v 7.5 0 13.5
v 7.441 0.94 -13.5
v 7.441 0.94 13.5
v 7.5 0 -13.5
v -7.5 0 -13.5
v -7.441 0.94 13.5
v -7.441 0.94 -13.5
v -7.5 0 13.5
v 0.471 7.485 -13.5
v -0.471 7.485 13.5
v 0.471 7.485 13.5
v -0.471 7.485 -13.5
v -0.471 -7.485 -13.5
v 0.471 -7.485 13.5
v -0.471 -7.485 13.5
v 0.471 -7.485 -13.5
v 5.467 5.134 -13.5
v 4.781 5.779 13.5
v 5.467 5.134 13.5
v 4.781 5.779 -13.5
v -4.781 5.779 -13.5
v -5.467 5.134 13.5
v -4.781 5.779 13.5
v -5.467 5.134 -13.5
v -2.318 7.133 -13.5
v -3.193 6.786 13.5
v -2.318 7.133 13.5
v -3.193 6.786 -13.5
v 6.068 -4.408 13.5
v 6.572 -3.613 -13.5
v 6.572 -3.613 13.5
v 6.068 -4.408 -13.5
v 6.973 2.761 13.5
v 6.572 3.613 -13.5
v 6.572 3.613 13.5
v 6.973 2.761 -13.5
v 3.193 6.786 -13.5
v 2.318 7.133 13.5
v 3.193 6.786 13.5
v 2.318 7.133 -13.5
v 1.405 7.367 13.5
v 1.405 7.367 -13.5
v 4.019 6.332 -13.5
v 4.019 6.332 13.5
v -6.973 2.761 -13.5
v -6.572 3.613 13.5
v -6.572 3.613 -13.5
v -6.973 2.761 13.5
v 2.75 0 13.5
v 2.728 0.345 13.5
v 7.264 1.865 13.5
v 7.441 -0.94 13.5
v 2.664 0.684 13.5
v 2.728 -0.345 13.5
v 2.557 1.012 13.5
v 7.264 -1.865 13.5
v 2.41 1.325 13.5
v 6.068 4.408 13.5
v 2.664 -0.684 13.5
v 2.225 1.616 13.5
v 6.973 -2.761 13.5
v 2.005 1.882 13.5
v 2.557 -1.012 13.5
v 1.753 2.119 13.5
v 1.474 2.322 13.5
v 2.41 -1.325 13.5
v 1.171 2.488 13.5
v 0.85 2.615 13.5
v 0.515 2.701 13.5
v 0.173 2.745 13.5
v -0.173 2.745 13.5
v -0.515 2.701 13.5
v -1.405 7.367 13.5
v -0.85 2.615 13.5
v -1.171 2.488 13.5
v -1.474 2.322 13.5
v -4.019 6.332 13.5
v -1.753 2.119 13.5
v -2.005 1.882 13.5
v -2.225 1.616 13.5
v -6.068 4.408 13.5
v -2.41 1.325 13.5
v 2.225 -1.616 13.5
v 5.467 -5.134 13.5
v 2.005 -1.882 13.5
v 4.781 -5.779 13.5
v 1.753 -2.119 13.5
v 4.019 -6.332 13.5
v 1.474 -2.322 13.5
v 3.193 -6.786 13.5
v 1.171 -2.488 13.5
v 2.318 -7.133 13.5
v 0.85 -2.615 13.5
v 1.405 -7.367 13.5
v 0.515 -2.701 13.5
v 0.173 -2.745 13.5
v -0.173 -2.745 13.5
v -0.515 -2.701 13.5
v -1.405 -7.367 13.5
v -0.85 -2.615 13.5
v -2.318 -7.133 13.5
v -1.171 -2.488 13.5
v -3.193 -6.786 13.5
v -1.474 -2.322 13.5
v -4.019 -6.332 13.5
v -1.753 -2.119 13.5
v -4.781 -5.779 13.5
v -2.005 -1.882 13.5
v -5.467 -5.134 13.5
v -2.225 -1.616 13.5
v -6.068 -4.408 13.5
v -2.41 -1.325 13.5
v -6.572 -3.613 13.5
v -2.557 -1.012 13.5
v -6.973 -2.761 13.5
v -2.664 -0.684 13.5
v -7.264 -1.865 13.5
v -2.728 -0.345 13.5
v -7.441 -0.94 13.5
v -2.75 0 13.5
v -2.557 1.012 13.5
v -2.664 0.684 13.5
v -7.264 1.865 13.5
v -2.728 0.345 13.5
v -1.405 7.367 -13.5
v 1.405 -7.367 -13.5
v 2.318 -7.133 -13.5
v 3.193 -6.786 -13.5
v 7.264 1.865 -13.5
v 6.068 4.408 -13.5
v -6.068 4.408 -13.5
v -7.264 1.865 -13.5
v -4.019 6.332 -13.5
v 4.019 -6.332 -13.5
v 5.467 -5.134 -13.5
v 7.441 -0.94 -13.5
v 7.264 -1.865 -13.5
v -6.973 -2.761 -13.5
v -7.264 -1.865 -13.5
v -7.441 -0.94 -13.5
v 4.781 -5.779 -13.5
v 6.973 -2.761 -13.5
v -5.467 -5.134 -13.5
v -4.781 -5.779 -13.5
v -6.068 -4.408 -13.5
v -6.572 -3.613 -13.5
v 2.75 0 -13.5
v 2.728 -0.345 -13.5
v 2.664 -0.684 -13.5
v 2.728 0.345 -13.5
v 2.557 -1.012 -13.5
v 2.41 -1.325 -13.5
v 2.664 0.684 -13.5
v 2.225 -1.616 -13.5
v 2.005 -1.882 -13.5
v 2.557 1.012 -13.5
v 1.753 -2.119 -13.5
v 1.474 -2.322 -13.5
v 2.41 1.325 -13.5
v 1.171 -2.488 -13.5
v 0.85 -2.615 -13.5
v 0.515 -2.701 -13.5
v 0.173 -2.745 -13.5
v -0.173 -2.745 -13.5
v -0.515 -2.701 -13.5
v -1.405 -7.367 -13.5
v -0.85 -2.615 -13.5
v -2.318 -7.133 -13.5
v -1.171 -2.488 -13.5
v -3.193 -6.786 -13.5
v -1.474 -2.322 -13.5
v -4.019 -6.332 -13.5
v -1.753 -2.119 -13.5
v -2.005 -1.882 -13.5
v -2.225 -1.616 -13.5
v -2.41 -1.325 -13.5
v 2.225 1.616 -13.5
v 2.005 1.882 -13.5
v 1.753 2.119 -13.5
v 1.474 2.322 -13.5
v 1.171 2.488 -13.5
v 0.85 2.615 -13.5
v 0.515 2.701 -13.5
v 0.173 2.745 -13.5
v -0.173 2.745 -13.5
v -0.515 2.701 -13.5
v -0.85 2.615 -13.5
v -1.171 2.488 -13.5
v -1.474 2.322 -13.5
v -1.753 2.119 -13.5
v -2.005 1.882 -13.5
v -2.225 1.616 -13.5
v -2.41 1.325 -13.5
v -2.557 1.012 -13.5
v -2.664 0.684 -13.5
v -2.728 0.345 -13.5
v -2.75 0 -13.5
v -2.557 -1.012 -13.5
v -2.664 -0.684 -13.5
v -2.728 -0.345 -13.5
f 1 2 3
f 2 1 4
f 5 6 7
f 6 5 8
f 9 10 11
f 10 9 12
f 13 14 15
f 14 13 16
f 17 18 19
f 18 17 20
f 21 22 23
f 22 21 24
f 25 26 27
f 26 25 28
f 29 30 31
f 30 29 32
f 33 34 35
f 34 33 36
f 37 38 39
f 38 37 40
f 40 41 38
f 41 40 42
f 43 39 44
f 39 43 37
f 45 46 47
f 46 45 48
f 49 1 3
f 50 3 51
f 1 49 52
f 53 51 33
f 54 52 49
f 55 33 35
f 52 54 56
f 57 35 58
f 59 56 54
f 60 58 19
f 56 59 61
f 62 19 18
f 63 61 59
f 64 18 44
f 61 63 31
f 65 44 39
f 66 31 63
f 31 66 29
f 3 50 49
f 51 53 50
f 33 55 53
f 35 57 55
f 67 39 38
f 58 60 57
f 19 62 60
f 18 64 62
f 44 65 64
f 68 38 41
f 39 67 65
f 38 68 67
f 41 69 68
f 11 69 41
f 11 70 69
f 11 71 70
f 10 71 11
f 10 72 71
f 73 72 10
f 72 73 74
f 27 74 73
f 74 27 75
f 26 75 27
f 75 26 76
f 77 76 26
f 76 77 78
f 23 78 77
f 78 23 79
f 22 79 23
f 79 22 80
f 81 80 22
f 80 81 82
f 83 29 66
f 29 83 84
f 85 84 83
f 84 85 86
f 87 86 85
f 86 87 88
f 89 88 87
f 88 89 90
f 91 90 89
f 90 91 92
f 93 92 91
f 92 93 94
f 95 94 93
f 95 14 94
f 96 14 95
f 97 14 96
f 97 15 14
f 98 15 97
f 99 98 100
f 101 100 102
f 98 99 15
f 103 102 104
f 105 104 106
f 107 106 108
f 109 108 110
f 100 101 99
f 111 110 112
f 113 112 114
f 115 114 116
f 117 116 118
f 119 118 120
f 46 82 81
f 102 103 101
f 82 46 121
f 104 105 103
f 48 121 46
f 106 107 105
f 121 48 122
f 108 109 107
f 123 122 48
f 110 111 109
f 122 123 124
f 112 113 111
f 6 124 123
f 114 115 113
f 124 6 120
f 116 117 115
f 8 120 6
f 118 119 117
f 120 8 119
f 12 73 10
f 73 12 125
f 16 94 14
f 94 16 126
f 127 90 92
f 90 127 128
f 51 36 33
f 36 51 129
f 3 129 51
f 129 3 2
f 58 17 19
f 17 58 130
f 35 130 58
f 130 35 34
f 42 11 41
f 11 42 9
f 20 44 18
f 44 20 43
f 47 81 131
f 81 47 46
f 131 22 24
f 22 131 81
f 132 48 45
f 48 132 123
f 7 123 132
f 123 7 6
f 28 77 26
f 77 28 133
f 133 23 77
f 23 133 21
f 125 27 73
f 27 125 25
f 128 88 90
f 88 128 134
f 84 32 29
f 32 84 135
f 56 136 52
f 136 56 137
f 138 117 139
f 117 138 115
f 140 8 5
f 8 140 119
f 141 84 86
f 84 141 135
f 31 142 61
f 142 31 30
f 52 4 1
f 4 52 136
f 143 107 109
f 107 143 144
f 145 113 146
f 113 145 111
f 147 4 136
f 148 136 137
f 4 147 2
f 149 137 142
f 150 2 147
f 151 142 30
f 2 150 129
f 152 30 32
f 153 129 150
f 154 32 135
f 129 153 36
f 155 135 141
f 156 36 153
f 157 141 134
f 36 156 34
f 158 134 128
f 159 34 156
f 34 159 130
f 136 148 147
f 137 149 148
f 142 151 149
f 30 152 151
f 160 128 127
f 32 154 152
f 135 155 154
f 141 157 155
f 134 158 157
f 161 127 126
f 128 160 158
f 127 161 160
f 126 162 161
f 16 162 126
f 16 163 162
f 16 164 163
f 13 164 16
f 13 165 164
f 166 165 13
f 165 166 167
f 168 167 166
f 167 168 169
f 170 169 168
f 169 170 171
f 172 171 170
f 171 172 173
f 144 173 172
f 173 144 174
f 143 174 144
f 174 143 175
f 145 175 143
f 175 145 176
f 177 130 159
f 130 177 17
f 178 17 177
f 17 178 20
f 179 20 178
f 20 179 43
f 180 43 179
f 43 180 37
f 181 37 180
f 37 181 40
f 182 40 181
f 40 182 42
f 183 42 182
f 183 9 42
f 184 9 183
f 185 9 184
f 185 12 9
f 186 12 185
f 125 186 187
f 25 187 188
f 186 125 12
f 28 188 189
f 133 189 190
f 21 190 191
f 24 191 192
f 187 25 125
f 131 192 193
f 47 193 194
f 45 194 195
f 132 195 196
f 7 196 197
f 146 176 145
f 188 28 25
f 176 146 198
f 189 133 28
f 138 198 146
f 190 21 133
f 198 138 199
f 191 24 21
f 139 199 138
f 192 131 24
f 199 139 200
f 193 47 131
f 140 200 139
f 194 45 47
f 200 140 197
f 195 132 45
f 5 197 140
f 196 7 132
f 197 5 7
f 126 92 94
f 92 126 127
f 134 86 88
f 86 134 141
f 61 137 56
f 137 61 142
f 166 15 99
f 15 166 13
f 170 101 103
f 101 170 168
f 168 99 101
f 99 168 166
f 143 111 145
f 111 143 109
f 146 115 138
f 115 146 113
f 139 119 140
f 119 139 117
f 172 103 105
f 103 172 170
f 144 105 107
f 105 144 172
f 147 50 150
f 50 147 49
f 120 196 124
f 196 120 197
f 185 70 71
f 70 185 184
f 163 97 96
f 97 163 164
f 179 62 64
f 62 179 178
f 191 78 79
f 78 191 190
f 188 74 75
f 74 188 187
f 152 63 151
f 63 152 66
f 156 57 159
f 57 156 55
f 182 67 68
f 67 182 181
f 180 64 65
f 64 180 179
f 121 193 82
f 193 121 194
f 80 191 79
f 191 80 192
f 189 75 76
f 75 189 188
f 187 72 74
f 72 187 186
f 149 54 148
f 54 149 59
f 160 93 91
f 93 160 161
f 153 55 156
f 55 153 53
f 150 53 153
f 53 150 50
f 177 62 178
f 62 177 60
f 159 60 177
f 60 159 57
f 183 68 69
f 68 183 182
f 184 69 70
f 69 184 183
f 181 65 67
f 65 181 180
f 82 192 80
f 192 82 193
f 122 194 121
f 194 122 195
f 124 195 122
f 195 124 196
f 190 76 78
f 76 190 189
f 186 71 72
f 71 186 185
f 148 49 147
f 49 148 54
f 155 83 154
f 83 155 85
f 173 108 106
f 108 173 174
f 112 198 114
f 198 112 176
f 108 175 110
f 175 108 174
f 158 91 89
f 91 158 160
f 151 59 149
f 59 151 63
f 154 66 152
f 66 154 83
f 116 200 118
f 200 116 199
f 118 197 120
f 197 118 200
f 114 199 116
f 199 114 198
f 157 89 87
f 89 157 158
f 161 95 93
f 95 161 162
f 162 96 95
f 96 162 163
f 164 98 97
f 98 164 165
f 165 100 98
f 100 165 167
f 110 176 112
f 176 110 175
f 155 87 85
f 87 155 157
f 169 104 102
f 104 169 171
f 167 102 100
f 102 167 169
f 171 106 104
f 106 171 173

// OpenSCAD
$fn = 50;


difference() {
	union() {
		translate(v = [0, 0, -13.5000000000]) {
			cylinder(h = 27, r = 7.5000000000);
		}
	}
	union() {
		translate(v = [0, 0, -100.0000000000]) {
			cylinder(h = 200, r = 2.7500000000);
		}
	}
}
